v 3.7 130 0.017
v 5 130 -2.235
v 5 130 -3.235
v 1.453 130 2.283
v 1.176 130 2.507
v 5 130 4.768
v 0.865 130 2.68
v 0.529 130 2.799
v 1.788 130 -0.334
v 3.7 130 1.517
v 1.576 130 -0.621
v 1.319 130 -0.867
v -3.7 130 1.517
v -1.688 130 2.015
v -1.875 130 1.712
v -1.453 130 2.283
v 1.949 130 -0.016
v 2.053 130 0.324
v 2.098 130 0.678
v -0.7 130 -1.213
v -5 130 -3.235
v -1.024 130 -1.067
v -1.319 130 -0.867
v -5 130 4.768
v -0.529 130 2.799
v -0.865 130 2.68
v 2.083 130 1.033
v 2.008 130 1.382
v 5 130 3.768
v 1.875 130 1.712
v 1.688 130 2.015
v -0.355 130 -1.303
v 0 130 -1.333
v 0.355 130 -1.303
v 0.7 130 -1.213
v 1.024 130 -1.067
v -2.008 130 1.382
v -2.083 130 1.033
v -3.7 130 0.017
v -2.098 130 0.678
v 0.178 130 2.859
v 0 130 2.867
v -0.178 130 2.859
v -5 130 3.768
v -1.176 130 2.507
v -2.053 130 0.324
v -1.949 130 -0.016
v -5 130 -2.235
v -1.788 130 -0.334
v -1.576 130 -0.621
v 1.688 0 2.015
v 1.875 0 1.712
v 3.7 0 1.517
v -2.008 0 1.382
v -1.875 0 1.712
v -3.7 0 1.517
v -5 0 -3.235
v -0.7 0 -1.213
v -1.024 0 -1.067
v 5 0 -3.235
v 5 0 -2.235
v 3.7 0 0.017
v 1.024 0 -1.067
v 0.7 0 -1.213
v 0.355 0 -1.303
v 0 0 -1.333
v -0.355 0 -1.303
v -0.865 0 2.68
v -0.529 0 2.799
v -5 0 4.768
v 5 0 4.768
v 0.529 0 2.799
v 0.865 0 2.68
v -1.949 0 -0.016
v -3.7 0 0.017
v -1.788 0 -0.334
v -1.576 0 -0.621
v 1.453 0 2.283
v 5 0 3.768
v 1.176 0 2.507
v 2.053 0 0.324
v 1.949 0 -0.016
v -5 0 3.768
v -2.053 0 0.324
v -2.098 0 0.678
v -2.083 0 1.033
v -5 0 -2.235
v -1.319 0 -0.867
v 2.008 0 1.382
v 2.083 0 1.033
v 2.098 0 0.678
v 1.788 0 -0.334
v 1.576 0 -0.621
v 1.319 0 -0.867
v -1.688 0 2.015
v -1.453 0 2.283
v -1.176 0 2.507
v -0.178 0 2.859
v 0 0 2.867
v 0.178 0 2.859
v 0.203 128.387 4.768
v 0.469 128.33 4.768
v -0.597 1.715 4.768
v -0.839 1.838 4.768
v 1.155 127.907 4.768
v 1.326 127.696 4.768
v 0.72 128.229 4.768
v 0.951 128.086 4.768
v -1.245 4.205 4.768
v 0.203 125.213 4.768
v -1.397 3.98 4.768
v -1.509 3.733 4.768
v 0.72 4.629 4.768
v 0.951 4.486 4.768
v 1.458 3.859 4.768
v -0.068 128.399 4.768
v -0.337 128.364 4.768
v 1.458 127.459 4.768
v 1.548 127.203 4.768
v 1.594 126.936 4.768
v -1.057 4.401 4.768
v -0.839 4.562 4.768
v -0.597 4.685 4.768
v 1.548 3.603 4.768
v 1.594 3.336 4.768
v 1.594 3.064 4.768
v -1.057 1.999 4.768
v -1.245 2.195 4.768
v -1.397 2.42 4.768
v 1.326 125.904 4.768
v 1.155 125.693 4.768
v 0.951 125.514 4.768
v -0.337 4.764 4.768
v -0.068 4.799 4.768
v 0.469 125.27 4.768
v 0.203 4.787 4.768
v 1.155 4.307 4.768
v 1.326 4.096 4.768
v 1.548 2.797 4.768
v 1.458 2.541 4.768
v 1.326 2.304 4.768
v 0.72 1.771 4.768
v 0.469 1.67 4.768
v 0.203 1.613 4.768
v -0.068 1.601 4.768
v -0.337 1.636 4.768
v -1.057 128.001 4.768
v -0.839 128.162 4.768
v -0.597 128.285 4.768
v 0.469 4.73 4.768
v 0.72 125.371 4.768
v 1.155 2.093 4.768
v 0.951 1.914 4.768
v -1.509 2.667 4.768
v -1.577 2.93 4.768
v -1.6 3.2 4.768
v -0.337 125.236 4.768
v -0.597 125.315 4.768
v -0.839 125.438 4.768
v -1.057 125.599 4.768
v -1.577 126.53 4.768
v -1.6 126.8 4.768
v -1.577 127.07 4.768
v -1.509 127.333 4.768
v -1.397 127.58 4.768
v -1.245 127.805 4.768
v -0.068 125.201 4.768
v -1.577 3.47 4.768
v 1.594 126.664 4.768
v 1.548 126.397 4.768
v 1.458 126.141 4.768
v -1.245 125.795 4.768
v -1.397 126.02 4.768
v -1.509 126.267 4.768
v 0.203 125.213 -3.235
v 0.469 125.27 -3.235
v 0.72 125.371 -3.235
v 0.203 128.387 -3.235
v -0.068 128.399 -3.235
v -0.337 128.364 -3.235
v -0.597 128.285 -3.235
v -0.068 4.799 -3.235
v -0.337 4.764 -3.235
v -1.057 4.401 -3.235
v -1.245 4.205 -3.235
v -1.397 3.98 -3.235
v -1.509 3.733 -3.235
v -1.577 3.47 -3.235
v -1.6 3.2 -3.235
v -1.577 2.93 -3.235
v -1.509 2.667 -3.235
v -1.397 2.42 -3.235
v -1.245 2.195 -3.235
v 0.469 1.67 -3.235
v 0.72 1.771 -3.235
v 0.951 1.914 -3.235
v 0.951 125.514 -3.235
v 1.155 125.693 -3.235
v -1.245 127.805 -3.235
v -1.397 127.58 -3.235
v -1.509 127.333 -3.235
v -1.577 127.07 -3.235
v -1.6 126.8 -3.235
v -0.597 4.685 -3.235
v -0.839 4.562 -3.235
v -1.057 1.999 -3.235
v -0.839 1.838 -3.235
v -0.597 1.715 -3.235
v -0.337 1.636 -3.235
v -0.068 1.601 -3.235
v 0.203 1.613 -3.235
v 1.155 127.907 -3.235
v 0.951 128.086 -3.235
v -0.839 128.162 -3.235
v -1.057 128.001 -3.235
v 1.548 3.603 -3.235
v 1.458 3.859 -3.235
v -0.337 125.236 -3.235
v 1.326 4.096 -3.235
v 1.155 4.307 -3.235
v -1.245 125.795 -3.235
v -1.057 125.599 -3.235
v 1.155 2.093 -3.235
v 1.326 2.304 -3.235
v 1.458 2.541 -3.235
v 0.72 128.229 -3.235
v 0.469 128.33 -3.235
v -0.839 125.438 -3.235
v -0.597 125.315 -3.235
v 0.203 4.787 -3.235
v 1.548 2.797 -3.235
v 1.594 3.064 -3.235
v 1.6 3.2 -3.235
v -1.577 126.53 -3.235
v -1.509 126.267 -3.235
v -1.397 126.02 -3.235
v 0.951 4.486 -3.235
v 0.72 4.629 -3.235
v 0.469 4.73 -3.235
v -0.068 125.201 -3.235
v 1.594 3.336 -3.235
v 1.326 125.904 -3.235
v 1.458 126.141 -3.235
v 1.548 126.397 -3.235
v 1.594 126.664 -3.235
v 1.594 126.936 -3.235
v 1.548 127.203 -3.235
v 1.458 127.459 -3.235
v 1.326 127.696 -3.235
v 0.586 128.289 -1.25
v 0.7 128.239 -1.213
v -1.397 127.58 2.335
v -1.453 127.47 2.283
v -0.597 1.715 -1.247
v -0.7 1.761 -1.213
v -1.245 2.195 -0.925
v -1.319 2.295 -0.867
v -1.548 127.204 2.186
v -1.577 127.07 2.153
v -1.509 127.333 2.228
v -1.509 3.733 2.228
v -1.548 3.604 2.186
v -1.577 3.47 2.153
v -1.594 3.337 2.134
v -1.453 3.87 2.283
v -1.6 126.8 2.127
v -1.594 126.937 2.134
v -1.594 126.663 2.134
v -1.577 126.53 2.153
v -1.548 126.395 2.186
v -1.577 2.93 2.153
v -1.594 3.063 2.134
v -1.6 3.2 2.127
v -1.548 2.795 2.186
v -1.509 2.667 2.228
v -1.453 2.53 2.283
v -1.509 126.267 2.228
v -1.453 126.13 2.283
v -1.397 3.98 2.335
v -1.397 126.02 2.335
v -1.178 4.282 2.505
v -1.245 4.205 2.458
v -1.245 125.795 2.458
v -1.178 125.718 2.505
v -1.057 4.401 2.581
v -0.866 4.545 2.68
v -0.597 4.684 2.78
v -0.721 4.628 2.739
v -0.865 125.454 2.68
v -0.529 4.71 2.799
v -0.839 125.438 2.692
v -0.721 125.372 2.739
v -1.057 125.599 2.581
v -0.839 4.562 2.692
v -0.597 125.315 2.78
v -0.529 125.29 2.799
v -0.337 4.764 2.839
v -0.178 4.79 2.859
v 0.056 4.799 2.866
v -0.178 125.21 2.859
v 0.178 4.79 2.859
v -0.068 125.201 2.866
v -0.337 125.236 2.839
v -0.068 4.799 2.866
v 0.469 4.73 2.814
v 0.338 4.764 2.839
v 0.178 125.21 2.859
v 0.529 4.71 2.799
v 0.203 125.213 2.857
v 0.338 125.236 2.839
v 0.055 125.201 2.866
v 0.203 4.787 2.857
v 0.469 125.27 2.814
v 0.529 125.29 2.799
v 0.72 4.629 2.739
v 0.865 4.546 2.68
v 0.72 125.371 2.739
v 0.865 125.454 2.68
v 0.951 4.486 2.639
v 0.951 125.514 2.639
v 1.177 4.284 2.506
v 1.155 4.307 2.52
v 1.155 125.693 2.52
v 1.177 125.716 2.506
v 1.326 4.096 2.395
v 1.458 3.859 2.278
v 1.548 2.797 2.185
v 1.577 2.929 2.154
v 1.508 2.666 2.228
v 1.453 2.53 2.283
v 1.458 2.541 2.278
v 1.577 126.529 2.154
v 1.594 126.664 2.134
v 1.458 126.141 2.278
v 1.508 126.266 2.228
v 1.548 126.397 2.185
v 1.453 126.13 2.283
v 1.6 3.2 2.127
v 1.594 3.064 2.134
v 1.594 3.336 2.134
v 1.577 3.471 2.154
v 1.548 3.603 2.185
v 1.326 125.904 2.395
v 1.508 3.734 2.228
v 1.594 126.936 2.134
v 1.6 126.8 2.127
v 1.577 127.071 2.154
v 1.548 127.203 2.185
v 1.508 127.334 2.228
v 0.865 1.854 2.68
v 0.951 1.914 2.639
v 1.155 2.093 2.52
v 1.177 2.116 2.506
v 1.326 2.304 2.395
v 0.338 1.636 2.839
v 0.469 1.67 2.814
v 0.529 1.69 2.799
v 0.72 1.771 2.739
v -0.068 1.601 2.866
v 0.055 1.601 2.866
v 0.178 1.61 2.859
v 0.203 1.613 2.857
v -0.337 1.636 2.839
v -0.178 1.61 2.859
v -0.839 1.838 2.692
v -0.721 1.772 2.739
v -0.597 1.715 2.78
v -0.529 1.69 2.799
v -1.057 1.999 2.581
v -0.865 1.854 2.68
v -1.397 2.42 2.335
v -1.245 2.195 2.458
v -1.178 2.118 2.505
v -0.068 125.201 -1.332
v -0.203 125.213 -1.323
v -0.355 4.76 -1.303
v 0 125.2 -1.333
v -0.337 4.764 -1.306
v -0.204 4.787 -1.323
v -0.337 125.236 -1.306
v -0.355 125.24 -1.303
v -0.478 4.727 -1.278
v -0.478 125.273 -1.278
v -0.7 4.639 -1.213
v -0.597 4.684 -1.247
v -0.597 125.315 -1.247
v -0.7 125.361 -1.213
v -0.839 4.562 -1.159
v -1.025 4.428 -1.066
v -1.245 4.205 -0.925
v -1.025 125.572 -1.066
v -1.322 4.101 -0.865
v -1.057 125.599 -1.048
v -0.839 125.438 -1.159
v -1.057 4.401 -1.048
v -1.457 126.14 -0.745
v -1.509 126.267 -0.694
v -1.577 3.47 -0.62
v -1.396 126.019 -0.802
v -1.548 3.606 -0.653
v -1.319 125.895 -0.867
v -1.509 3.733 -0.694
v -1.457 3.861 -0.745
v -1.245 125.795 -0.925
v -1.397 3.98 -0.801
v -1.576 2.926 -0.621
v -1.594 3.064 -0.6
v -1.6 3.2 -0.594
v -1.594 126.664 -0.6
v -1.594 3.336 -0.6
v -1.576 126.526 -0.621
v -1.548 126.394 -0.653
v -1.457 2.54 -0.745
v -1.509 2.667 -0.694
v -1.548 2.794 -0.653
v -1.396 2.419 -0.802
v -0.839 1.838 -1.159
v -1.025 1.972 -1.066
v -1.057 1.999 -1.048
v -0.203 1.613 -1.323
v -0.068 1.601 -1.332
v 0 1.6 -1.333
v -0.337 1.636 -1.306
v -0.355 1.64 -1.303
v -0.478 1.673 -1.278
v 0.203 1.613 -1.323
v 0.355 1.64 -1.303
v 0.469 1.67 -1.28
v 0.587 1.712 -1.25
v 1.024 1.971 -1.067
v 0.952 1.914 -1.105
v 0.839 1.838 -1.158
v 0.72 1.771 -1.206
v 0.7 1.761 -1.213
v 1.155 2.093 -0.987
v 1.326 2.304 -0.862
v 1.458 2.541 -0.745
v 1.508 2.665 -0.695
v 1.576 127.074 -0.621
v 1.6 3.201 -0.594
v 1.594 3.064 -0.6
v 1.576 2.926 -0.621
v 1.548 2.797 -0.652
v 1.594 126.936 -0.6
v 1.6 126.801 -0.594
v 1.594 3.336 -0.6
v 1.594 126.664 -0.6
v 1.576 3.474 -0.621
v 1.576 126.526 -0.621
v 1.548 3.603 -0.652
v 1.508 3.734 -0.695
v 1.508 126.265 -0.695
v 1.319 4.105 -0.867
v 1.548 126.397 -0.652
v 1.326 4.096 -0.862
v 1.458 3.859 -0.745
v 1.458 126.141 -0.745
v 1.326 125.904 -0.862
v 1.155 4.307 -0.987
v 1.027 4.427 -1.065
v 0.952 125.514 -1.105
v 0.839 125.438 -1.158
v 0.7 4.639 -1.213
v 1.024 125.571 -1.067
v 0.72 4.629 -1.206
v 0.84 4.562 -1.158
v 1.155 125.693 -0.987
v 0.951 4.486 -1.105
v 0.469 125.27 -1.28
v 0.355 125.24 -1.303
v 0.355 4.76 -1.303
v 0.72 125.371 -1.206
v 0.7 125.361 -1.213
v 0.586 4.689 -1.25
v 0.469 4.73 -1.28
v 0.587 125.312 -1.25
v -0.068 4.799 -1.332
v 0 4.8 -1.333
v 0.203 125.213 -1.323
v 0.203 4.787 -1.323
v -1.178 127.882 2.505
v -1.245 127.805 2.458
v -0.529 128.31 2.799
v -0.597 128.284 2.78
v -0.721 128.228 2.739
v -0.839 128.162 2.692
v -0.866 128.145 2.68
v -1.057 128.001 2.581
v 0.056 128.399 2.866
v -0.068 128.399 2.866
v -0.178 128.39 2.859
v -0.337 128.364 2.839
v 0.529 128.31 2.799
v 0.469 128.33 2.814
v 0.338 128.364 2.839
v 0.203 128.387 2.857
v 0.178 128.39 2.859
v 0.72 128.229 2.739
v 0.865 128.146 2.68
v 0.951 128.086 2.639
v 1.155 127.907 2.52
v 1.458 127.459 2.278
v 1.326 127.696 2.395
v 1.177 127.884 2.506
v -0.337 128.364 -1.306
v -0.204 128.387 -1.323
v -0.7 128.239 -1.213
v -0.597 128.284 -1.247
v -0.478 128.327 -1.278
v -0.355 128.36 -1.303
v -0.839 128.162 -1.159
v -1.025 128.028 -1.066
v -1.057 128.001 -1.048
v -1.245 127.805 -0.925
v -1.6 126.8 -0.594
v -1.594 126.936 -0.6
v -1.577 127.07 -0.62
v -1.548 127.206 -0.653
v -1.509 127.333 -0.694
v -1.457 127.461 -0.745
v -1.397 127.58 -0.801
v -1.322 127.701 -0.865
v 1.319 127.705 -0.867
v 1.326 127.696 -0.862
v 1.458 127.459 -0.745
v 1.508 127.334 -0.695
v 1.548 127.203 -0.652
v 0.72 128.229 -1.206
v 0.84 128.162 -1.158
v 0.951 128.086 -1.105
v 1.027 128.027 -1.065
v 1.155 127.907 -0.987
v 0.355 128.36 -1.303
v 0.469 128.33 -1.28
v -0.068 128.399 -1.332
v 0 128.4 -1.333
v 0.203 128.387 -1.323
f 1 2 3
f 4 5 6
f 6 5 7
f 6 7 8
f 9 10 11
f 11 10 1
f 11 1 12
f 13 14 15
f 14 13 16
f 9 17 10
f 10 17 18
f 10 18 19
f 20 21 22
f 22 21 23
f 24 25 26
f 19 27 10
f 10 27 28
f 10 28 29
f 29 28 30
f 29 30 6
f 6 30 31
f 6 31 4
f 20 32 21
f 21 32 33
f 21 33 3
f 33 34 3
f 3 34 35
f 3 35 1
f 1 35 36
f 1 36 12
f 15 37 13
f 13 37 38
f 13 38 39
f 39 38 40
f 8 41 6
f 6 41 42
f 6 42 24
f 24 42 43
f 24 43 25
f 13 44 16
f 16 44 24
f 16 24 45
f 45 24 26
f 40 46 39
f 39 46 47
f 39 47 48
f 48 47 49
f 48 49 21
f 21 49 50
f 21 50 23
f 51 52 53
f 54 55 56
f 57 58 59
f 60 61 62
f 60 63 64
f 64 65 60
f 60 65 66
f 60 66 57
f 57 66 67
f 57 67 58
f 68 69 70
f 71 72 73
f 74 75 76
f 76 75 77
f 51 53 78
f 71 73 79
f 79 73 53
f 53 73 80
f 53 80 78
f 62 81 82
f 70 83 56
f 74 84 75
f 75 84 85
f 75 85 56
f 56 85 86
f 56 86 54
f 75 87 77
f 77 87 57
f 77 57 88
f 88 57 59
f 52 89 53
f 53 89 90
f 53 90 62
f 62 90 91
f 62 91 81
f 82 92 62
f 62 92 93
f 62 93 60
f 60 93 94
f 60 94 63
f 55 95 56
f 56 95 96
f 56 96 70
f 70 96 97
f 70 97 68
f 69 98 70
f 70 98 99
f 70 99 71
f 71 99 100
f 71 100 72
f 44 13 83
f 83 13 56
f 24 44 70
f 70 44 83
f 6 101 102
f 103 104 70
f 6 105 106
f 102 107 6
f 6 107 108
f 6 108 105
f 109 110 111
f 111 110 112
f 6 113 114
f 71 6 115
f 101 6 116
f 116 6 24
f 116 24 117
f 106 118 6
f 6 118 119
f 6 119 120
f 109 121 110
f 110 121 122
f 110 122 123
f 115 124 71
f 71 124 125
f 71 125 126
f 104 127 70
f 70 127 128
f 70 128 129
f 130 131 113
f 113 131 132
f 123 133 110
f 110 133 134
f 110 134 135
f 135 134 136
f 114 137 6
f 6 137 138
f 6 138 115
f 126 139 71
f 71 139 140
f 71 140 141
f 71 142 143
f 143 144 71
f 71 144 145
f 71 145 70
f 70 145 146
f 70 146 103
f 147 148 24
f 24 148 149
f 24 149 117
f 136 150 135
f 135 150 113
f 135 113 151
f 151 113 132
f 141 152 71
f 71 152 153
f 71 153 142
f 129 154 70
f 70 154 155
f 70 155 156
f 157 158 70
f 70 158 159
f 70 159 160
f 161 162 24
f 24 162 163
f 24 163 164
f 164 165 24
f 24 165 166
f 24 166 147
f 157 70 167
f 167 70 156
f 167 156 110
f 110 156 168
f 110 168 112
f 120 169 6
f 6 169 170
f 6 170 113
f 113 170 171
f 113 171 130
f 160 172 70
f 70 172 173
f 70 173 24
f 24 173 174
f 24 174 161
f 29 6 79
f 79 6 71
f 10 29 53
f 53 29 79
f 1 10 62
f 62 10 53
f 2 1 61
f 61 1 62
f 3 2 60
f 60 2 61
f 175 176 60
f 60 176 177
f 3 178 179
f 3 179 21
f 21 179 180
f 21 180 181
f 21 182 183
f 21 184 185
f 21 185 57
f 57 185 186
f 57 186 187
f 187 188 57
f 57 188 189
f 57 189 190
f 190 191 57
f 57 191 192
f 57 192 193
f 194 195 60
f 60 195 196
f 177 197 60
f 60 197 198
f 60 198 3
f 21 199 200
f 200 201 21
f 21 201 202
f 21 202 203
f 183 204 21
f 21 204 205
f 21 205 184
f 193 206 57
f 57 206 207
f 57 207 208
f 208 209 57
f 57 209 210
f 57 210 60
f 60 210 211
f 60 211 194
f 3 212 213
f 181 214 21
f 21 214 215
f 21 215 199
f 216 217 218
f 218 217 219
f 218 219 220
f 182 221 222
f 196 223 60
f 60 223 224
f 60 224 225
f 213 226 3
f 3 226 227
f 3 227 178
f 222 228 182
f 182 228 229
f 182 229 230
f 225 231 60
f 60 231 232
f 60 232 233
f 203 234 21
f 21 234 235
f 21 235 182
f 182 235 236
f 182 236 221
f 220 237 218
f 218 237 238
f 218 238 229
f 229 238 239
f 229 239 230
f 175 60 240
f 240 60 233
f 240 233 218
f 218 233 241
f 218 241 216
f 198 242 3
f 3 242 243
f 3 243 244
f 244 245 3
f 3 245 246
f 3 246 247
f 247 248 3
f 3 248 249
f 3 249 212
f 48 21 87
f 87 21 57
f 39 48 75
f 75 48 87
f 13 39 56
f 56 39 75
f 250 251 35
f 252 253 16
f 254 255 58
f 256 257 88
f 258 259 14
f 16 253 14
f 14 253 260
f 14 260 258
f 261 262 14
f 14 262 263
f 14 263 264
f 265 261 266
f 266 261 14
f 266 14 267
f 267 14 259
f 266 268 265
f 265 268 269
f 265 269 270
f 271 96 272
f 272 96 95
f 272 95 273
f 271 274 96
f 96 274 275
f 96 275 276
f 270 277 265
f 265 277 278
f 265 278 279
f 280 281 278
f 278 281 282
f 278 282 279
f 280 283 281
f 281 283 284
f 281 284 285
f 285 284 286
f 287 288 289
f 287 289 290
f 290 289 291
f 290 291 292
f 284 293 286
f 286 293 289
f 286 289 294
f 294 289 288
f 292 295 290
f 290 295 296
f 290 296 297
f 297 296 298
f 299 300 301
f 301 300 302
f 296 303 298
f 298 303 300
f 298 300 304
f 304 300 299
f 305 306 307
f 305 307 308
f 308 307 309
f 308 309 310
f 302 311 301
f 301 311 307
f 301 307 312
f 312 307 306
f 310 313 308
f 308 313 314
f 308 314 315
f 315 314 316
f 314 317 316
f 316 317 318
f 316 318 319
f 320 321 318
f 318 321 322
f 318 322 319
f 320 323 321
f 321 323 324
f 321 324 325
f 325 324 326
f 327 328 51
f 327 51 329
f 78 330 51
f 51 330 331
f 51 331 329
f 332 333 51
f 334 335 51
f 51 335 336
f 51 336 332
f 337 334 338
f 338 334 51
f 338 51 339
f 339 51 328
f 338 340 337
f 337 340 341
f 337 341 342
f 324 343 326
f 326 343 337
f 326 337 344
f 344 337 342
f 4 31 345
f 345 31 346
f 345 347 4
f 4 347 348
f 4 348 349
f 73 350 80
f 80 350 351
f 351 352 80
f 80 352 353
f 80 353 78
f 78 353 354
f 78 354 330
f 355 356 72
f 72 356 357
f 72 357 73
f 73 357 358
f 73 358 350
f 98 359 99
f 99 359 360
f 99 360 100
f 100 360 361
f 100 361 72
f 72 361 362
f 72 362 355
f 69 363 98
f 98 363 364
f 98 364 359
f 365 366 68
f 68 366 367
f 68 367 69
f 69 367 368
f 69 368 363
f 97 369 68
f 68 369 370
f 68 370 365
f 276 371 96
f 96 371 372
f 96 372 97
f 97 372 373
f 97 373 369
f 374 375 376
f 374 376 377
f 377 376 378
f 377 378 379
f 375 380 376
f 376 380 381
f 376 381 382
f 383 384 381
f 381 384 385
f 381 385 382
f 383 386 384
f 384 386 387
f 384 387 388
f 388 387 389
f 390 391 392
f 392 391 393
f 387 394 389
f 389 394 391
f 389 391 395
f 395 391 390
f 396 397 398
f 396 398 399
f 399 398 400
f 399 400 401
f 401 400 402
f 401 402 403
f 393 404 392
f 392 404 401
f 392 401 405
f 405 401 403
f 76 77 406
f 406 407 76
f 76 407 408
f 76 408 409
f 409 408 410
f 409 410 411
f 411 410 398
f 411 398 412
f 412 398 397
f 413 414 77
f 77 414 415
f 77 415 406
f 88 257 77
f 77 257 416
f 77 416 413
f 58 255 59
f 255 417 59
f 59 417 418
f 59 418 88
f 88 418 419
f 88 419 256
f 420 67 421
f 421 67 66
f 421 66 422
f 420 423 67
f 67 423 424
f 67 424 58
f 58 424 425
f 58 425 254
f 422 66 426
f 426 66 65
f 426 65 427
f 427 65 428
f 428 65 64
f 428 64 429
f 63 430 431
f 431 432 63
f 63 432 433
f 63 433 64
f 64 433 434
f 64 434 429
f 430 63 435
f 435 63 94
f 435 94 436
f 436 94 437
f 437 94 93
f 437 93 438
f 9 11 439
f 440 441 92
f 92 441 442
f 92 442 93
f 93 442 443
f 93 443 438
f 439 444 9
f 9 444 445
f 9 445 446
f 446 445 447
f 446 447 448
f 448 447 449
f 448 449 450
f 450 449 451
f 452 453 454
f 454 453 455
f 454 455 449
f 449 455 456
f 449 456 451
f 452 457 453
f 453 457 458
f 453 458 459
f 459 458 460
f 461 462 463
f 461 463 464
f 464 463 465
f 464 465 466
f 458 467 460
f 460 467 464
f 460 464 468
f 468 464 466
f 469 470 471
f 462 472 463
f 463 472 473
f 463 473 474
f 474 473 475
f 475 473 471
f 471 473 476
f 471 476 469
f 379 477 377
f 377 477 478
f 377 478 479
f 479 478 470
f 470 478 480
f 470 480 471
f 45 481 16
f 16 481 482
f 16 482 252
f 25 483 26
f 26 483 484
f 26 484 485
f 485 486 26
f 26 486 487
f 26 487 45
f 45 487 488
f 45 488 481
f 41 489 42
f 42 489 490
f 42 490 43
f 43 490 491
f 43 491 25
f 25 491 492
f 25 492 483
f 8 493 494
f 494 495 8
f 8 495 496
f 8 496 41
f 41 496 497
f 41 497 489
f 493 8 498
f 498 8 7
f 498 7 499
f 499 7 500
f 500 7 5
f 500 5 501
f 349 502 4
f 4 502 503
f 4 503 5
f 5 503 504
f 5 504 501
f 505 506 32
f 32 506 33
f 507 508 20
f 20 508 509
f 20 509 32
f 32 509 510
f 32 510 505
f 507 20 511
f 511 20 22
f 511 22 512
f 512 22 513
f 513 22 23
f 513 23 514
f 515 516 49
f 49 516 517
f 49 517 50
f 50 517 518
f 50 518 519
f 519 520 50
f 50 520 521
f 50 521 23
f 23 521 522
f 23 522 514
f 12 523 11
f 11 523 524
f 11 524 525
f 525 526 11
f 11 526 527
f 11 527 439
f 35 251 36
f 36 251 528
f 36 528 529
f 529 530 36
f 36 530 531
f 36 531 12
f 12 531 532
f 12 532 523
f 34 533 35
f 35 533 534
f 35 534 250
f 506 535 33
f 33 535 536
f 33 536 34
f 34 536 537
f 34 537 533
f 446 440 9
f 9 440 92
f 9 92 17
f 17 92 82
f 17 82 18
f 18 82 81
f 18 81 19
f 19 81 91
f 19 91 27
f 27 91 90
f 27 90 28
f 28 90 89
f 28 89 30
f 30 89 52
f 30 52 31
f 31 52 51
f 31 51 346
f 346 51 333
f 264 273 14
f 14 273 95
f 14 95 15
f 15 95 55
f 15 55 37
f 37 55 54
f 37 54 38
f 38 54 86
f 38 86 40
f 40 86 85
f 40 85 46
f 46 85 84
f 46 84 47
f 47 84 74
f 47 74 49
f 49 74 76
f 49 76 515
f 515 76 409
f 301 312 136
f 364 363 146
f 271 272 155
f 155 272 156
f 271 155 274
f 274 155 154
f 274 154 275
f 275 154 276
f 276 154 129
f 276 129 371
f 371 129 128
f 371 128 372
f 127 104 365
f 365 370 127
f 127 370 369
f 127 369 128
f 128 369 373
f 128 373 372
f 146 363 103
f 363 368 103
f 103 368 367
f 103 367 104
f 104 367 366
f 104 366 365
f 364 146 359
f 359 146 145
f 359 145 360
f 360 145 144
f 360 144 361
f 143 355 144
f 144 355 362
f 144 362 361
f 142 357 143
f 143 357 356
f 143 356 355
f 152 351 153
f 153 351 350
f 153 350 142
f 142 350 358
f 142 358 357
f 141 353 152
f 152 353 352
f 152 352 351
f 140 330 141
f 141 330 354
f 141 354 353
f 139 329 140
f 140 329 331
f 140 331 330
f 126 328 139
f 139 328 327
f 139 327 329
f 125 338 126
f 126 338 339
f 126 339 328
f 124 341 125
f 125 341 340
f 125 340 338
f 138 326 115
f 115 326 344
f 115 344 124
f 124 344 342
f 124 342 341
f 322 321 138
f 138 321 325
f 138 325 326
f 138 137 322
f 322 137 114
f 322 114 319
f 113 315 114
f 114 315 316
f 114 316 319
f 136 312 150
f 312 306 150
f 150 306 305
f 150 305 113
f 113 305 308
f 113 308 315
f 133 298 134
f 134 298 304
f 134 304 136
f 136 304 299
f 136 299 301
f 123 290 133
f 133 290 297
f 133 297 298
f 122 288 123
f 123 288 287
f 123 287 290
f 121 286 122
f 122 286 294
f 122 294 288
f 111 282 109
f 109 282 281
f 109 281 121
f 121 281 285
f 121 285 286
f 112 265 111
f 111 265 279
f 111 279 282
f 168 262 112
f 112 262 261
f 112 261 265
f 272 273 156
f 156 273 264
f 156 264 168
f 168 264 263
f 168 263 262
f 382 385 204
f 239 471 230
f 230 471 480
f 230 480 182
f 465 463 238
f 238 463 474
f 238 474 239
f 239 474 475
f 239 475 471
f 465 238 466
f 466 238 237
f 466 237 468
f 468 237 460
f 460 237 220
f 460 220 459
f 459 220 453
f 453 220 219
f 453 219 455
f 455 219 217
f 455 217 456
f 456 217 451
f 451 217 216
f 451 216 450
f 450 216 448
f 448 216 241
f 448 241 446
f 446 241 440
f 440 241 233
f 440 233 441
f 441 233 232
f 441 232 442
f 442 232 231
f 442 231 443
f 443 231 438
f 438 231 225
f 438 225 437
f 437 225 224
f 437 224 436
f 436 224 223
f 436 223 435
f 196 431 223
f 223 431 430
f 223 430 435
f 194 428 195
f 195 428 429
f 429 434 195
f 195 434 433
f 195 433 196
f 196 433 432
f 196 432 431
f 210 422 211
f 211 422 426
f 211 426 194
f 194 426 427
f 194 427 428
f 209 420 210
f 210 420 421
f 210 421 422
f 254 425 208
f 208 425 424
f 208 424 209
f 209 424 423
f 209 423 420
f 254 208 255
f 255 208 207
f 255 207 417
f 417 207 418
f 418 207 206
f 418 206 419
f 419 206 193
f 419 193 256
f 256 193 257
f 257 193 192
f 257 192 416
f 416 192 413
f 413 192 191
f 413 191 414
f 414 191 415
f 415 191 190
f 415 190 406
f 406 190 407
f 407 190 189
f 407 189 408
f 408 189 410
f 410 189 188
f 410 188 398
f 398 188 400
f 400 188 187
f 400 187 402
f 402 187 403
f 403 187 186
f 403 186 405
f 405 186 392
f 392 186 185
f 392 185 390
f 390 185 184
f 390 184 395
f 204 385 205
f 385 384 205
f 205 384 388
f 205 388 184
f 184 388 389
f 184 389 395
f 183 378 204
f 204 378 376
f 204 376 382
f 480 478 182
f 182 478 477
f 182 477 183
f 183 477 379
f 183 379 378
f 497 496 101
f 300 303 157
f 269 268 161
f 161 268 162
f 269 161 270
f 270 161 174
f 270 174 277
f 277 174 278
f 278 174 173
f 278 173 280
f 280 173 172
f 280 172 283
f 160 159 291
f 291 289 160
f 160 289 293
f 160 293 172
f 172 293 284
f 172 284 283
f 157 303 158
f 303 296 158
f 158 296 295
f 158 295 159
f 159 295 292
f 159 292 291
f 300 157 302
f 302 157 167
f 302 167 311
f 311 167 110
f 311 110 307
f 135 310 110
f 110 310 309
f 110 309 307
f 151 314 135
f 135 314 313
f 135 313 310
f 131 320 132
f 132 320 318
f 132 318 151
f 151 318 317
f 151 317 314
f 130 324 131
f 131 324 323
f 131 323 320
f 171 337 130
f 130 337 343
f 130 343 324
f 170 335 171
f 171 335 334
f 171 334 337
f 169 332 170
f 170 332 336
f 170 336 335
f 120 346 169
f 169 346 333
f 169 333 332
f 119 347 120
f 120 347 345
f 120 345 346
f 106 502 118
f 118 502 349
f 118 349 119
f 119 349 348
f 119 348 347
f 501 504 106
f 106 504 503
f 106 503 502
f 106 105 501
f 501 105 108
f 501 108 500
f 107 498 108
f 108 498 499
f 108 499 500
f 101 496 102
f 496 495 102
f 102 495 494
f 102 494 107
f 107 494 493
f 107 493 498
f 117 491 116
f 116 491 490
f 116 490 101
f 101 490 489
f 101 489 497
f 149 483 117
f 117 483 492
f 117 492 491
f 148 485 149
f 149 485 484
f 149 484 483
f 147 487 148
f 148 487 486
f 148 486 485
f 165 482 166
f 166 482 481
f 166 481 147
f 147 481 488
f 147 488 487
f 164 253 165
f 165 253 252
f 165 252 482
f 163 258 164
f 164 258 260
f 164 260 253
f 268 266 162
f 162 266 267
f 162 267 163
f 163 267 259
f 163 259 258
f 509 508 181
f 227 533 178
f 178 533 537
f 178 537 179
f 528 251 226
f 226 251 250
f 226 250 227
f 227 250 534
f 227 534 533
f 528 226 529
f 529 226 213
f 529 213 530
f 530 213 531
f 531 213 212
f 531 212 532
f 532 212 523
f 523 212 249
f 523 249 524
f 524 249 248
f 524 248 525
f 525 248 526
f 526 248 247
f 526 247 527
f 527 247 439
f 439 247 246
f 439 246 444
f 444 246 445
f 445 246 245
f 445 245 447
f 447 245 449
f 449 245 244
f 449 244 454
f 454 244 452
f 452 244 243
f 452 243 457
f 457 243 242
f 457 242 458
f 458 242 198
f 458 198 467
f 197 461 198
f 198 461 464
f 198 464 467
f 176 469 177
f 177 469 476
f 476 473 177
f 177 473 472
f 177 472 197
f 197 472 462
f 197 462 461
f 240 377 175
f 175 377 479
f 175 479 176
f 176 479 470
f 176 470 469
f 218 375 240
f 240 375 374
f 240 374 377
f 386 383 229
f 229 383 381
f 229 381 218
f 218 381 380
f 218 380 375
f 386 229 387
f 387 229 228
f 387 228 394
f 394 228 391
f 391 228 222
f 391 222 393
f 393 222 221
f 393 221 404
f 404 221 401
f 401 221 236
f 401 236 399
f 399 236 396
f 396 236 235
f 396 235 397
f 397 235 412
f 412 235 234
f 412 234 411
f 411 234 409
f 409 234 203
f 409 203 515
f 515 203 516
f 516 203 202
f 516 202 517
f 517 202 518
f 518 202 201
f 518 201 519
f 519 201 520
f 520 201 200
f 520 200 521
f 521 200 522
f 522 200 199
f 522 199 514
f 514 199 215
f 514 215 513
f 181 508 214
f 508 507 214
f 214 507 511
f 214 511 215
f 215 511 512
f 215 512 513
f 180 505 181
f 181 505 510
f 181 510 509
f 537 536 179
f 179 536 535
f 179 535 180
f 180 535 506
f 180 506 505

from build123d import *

# Parameters (mm, degrees)
SKETCH_1_R          = 2.1
EXTRUDE_1_DEPTH     = 130
SKETCH_2_R          = 1.6
CUT_EXTRUDE_1_DEPTH = 10


with BuildPart() as part:
    # 草图1 → 凸台-拉伸1 (new body)
    with BuildSketch(Plane(origin=(0, 0, 0), x_dir=(1, 0, 0), z_dir=(0, 1, 0))):
        Polygon((5, 3.235022849), (-5, 3.235022849), (-5, 2.235022849), (-3.7, -0.016643201), (-3.7, -1.516643201), (-5, -3.76830925), (-5, -4.76830925), (5, -4.76830925), (5, -3.76830925), (3.7, -1.516643201), (3.7, -0.016643201), (5, 2.235022849), align=None)
        with Locations(Location((0, -0.766643201, 0), (0, 0, 270))):
            Circle(SKETCH_1_R, mode=Mode.SUBTRACT)
    extrude(amount=EXTRUDE_1_DEPTH)

    # 草图2 → 切除-拉伸1 (cut)
    with BuildSketch(Plane(origin=(0, 0, -3.235022849), x_dir=(-1, 0, 0), z_dir=(0, 0, -1))):
        with Locations((0, 126.8)):
            Circle(SKETCH_2_R)
        with Locations((0, 3.2)):
            Circle(SKETCH_2_R)
    extrude(amount=-CUT_EXTRUDE_1_DEPTH, mode=Mode.SUBTRACT)


solid = part.part
